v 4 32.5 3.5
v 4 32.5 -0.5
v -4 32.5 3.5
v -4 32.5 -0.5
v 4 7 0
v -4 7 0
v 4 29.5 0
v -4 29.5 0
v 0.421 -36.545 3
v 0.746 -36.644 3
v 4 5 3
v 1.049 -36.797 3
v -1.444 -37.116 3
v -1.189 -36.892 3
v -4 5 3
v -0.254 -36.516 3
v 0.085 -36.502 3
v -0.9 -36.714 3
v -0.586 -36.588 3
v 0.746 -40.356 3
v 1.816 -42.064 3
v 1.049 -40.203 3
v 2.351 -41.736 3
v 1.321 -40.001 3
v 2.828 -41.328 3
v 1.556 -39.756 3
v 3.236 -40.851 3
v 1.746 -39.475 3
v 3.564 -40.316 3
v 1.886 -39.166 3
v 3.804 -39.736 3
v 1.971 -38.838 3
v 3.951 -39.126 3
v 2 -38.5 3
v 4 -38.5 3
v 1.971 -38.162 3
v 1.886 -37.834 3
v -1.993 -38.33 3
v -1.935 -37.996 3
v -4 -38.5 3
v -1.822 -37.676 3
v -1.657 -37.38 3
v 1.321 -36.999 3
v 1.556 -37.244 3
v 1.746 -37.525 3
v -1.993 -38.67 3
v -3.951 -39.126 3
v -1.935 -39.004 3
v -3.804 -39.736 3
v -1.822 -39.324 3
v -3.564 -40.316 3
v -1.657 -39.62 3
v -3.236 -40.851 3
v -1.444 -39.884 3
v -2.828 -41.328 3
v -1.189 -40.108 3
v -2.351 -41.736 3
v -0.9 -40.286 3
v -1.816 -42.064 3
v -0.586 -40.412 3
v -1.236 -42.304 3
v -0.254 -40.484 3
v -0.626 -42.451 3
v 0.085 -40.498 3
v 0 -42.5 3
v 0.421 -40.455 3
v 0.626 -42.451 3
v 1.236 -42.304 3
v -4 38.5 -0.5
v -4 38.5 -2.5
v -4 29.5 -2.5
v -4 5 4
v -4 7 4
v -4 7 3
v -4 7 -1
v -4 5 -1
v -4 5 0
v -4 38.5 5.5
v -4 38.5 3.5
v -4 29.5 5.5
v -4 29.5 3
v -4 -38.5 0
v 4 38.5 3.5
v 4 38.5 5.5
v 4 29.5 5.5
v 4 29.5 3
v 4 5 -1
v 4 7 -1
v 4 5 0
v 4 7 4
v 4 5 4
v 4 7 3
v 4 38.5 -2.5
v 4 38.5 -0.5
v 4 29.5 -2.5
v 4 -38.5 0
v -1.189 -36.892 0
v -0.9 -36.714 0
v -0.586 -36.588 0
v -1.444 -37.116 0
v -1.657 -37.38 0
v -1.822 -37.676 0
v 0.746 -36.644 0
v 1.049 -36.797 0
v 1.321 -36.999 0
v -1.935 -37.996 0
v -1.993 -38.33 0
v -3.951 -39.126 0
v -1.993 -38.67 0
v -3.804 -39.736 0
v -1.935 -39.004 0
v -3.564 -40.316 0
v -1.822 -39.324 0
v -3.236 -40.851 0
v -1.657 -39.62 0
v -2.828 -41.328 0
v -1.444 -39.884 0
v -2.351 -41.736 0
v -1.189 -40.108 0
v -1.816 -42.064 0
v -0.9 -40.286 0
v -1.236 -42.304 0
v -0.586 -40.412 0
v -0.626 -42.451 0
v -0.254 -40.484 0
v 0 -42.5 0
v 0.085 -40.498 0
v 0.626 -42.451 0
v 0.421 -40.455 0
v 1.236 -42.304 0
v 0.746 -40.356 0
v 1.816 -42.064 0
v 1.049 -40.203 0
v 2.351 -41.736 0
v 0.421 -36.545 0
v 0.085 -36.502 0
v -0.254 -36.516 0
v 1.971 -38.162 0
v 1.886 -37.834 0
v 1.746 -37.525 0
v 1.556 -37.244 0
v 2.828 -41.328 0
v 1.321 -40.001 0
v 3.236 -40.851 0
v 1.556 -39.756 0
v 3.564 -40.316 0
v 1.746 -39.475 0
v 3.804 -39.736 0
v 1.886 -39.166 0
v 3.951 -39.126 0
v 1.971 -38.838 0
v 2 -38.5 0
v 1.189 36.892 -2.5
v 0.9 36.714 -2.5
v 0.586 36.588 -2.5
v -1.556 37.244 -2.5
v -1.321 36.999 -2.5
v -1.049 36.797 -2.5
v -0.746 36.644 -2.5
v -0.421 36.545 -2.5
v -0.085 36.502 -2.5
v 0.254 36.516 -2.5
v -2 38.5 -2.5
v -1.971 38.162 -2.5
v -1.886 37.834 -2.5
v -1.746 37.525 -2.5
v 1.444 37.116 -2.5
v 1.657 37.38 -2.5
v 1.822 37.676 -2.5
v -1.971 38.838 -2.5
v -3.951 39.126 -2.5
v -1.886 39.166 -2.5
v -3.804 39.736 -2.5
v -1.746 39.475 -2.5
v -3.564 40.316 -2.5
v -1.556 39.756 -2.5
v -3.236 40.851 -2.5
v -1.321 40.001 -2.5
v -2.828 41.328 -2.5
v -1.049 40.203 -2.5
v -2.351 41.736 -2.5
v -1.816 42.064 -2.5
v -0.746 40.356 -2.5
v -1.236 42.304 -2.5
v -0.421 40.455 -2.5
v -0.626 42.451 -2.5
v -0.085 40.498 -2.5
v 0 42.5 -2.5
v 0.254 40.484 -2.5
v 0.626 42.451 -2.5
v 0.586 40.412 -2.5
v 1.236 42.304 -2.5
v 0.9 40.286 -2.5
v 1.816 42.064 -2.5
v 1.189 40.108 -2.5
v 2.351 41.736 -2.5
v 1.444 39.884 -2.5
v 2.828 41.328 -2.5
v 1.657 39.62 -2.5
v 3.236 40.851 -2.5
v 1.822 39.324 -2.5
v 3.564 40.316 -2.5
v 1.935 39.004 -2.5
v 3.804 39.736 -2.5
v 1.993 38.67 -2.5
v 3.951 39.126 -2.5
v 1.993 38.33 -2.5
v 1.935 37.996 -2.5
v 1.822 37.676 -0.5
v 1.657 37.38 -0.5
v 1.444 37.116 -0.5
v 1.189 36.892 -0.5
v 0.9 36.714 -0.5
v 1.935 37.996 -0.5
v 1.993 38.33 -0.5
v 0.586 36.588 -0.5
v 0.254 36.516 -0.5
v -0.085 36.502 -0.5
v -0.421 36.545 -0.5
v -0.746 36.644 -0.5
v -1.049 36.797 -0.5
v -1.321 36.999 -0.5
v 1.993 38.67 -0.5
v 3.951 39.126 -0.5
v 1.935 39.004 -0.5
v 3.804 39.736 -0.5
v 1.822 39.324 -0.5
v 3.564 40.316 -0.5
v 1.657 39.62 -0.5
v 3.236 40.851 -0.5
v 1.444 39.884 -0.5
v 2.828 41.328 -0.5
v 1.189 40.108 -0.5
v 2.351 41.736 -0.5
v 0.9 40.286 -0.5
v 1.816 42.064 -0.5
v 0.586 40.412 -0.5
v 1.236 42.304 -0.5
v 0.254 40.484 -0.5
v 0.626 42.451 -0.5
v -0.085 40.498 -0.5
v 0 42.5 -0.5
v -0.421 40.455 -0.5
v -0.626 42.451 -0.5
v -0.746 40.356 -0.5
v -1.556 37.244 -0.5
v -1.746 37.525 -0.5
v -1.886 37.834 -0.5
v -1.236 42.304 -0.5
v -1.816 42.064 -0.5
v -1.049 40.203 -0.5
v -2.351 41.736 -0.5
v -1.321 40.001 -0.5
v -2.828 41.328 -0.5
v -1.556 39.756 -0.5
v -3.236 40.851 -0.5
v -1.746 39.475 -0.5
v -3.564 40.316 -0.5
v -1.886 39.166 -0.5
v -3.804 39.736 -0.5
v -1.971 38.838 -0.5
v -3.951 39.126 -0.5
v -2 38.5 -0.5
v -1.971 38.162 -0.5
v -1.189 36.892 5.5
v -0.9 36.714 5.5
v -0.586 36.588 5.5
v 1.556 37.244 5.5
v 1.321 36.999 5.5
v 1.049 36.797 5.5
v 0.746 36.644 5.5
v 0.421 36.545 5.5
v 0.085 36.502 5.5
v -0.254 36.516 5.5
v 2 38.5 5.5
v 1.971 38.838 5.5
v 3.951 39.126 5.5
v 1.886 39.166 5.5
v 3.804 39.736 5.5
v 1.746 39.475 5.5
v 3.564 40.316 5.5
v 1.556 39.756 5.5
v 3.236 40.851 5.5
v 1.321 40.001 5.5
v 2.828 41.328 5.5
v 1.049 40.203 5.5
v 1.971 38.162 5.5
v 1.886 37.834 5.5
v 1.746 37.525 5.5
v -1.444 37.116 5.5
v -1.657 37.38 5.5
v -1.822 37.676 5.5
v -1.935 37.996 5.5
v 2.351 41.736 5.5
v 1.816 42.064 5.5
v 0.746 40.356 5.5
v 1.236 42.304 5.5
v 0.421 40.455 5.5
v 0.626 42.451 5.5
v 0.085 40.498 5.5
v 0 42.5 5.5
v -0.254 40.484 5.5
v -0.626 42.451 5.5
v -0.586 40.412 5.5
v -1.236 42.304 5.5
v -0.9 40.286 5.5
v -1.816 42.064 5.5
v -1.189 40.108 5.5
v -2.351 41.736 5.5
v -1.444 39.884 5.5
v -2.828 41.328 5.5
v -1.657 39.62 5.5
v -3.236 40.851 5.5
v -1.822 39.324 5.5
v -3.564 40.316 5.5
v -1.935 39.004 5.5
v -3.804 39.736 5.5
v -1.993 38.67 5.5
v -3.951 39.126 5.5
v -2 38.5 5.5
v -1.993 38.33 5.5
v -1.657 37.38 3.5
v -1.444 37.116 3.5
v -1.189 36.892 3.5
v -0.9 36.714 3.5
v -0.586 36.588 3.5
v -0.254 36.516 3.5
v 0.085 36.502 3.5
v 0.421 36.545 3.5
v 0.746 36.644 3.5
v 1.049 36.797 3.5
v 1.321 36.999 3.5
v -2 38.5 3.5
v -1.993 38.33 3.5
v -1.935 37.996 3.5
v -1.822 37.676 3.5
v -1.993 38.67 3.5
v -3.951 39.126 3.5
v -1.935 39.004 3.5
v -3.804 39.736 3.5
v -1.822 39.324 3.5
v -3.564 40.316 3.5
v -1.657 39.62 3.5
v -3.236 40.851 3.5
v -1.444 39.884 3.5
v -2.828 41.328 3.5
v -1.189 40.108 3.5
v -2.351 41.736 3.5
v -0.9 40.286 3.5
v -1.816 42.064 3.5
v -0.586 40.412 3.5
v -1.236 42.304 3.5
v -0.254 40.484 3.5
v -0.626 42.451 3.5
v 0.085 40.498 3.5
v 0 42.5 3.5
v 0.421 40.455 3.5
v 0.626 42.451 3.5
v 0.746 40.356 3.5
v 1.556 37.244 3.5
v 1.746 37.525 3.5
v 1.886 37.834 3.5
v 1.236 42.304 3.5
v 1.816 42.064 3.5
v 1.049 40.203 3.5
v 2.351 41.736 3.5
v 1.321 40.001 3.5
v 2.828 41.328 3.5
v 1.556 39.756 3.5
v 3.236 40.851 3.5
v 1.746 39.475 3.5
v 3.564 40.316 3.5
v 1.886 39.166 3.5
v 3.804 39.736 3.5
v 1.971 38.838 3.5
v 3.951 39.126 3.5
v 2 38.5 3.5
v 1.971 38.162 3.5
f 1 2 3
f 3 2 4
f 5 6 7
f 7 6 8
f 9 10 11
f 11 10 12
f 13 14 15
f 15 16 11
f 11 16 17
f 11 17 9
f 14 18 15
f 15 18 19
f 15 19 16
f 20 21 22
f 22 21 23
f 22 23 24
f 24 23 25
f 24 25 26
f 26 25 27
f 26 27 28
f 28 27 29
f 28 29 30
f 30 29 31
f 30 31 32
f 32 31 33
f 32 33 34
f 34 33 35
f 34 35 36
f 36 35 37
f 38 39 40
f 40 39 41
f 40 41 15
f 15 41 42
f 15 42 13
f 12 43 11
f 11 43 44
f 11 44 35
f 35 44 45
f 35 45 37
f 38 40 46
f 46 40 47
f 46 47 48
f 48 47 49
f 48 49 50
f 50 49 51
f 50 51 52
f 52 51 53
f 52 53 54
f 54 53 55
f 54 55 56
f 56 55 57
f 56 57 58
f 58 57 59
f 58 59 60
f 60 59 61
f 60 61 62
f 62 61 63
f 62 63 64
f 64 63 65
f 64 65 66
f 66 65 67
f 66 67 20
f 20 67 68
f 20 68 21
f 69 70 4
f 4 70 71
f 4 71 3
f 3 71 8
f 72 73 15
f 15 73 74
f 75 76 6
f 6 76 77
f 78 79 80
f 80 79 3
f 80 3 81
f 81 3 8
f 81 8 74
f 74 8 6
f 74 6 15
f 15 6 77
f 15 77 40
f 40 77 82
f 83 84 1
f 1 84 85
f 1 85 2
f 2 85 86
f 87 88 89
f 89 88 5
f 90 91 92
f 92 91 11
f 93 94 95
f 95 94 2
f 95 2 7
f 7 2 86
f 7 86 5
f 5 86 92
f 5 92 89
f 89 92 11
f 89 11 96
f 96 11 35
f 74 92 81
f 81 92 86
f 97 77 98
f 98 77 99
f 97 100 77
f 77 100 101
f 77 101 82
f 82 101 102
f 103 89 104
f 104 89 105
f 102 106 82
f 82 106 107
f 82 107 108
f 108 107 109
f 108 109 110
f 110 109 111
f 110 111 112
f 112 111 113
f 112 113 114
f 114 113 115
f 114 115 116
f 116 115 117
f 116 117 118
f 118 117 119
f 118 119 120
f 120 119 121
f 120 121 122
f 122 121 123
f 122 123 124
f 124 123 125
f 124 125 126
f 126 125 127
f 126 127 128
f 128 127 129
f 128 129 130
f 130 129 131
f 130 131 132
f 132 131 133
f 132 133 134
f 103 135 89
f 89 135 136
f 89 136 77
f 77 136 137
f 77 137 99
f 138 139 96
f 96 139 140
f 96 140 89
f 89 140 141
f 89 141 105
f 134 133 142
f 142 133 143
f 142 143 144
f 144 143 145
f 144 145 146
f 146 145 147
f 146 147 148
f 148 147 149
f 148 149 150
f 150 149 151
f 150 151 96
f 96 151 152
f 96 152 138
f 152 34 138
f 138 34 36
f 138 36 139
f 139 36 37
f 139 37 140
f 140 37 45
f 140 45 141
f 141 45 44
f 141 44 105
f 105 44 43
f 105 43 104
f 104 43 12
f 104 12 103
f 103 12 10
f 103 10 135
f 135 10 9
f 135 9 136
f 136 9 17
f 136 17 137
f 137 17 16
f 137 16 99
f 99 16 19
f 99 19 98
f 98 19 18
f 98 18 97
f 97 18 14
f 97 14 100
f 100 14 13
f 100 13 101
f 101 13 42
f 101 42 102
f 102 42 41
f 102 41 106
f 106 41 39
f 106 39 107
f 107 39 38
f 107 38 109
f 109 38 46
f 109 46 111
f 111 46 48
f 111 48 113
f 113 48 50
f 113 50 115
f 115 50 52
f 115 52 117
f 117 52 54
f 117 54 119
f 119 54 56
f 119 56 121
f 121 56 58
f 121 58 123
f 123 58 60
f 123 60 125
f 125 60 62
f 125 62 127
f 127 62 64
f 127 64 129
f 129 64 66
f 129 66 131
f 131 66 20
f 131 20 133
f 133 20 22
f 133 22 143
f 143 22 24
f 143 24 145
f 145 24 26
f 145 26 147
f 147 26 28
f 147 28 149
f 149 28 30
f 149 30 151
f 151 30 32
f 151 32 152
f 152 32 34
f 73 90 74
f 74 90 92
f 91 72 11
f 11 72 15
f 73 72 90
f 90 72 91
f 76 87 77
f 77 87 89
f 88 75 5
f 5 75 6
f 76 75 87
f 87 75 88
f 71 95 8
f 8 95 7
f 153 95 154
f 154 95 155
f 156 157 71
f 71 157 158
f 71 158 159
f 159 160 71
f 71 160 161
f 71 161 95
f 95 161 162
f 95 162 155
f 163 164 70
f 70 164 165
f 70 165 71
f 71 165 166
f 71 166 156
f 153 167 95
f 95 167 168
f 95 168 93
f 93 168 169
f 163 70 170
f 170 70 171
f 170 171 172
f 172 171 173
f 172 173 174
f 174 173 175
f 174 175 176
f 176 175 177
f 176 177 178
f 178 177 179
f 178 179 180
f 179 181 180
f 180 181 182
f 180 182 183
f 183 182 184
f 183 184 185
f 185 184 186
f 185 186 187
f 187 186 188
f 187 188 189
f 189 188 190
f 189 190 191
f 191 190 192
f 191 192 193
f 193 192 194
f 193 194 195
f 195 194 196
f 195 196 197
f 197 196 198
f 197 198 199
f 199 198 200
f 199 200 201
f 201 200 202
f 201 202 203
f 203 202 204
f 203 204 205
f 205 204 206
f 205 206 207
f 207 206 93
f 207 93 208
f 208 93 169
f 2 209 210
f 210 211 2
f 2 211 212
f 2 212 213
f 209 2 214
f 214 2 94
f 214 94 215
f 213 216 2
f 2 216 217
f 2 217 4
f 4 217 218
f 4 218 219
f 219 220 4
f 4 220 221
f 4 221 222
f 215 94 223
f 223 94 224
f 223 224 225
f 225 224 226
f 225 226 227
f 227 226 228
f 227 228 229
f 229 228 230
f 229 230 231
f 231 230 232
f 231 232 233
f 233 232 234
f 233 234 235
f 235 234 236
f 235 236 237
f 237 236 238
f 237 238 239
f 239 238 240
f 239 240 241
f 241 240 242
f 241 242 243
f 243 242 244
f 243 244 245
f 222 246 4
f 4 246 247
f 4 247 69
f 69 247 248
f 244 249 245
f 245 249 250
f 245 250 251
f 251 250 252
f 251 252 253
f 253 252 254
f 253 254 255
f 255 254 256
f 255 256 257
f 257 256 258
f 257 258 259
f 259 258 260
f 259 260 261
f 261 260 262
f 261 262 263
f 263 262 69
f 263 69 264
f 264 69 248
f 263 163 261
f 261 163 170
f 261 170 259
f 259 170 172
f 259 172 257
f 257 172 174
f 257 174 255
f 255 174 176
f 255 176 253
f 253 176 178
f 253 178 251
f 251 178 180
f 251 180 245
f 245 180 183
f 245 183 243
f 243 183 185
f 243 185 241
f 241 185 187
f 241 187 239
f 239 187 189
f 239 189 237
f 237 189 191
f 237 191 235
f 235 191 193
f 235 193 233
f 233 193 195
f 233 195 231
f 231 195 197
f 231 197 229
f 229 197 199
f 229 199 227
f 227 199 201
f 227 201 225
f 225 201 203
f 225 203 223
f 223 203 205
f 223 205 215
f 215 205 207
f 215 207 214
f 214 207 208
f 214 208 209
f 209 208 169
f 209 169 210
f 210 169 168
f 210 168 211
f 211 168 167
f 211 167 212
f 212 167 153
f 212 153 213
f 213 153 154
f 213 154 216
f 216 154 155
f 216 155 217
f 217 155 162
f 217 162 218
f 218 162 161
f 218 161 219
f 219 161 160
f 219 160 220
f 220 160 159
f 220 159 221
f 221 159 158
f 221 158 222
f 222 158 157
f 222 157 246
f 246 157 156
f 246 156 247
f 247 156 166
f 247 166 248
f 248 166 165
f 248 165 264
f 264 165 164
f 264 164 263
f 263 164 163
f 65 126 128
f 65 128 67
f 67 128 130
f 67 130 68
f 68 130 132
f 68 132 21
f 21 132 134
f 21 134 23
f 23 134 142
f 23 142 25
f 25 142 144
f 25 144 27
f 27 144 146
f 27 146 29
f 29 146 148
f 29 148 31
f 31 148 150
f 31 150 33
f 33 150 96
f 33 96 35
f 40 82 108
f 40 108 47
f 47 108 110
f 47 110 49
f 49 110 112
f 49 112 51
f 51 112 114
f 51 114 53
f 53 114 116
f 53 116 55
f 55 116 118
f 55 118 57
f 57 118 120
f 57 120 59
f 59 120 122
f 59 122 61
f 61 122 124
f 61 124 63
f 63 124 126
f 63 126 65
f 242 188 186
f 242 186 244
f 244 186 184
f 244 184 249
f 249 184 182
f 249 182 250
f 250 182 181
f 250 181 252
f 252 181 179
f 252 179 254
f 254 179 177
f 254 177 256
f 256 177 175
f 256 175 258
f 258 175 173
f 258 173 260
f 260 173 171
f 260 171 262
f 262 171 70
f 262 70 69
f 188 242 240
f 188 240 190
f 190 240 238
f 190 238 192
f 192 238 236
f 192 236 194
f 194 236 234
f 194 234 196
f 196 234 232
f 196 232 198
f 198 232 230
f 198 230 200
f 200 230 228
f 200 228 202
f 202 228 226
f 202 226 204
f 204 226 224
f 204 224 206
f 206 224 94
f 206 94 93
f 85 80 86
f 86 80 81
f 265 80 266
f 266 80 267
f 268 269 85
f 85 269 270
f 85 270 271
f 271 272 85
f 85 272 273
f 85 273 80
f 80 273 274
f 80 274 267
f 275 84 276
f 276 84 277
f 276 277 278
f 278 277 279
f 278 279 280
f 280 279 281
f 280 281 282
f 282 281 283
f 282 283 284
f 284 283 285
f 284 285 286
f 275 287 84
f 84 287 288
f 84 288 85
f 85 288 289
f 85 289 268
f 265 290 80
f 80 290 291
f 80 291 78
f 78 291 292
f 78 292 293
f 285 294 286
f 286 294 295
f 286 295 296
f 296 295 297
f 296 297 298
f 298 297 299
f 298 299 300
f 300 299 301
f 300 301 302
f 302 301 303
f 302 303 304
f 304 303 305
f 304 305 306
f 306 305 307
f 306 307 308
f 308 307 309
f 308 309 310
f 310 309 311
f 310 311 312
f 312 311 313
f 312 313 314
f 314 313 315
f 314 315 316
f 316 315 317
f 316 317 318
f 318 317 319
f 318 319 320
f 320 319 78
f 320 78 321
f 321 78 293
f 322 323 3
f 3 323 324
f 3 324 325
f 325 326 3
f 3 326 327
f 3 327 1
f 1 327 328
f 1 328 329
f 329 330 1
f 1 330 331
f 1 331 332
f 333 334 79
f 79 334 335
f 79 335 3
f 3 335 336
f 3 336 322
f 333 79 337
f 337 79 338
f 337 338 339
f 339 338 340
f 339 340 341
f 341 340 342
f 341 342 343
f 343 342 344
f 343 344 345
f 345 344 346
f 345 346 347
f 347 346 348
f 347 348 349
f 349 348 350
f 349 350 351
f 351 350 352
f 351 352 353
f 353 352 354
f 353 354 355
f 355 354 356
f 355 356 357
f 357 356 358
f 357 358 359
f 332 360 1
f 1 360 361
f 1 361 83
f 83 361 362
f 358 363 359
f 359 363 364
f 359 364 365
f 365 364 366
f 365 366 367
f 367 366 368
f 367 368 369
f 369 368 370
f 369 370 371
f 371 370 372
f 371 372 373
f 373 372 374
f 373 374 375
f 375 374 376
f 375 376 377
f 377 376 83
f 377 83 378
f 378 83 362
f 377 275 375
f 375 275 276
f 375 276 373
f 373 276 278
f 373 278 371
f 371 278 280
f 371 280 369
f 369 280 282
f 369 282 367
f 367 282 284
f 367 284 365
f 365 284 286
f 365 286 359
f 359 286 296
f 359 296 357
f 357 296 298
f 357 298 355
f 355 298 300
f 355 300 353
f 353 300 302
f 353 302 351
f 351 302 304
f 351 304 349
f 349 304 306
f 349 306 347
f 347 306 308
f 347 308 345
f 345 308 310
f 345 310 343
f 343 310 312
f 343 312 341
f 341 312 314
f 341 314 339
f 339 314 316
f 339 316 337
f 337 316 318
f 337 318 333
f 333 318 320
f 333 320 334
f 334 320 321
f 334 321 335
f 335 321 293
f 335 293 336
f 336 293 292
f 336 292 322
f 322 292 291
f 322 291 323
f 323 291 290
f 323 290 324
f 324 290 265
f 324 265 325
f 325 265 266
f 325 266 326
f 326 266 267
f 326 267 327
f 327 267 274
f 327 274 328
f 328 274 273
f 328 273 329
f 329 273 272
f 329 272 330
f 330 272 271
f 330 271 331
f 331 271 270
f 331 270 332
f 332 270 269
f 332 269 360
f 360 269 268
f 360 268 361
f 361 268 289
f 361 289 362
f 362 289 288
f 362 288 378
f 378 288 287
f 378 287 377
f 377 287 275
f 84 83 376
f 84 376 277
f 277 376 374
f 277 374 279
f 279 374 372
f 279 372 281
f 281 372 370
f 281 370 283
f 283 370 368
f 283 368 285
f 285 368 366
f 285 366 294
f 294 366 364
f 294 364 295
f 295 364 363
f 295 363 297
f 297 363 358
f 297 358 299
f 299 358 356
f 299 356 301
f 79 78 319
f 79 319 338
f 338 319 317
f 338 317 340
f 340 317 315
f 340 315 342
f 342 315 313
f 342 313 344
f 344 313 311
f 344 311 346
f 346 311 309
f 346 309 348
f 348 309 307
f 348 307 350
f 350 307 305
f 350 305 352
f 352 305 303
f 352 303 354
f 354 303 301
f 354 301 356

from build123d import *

# Parameters (mm, degrees)
CROQUIS1_W              = 8
CROQUIS1_H              = 75
SALIENTE_EXTRUIR1_DEPTH = 3
CROQUIS2_R              = 2
CORTAR_EXTRUIR1_DEPTH   = 43.793106922
CROQUIS3_W              = 8
CROQUIS3_H              = 2
SALIENTE_EXTRUIR2_DEPTH = 1
CROQUIS4_W              = 8
CROQUIS4_H              = 3
SALIENTE_EXTRUIR3_DEPTH = 2.5
CROQUIS5_W              = 8
CROQUIS5_H              = 2
SALIENTE_EXTRUIR4_DEPTH = 10
CROQUIS7_R              = 2
CORTAR_EXTRUIR3_DEPTH   = 18.5
REDONDEO2_R             = 4
REDONDEO5_R             = 4


with BuildPart() as part:
    # Croquis1 → Saliente-Extruir1 (new body)
    with BuildSketch(Plane.XY):
        with Locations((0, -5)):
            Rectangle(CROQUIS1_W, CROQUIS1_H)
    extrude(amount=SALIENTE_EXTRUIR1_DEPTH)

    # Croquis2 → Cortar-Extruir1 (cut, through all)
    with BuildSketch(Plane.XY.offset(3)):
        with Locations((0, -38.5)):
            Circle(CROQUIS2_R)
    extrude(amount=-CORTAR_EXTRUIR1_DEPTH, mode=Mode.SUBTRACT)

    # Croquis3 → Saliente-Extruir2 (add)
    with BuildSketch(Plane.XY.offset(3)):
        with Locations((0, 6)):
            Rectangle(CROQUIS3_W, CROQUIS3_H)
    saliente_extruir2 = extrude(amount=SALIENTE_EXTRUIR2_DEPTH)

    # Simetría1: Saliente-Extruir2 across plane
    add(saliente_extruir2.mirror(Plane.XY.offset(1.5)))

    # Croquis4 → Saliente-Extruir3 (add)
    with BuildSketch(Plane(origin=(0, 0, 0), x_dir=(-1, 0, 0), z_dir=(0, 0, -1))):
        with Locations((0, 31)):
            Rectangle(CROQUIS4_W, CROQUIS4_H)
    saliente_extruir3 = extrude(amount=SALIENTE_EXTRUIR3_DEPTH)

    # Croquis5 → Saliente-Extruir4 (add)
    with BuildSketch(Plane(origin=(0, 32.5, 0), x_dir=(1, 0, 0), z_dir=(0, 1, 0))):
        with Locations((0, 1.5)):
            Rectangle(CROQUIS5_W, CROQUIS5_H)
    saliente_extruir4 = extrude(amount=SALIENTE_EXTRUIR4_DEPTH)

    # Croquis7 → Cortar-Extruir3 (cut)
    with BuildSketch(Plane(origin=(0, 0, -2.5), x_dir=(-1, 0, 0), z_dir=(0, 0, -1))):
        with Locations((0, 38.5)):
            Circle(CROQUIS7_R)
    cortar_extruir3 = extrude(amount=-CORTAR_EXTRUIR3_DEPTH, mode=Mode.SUBTRACT)

    # Redondeo2
    redondeo2_edges = [part.edges().sort_by_distance(p)[0] for p in [
        (4, 42.5, -1.5),
        (-4, 42.5, -1.5),
        (-4, -42.5, 1.5),
        (4, -42.5, 1.5),
    ]]
    fillet(redondeo2_edges, radius=REDONDEO2_R - 0.0001)  # a hair under: the kernel refuses the full size

    # Simetría3: Saliente-Extruir3, Saliente-Extruir4, Cortar-Extruir3 across plane
    add(saliente_extruir3.mirror(Plane.XY.offset(1.5)))
    add(saliente_extruir4.mirror(Plane.XY.offset(1.5)))
    add(cortar_extruir3.mirror(Plane.XY.offset(1.5)), mode=Mode.SUBTRACT)

    # Redondeo5
    redondeo5_edges = [part.edges().sort_by_distance(p)[0] for p in [
        (-4, 42.5, 4.5),
        (4, 42.5, 4.5),
    ]]
    fillet(redondeo5_edges, radius=REDONDEO5_R - 0.0001)  # a hair under: the kernel refuses the full size


solid = part.part
